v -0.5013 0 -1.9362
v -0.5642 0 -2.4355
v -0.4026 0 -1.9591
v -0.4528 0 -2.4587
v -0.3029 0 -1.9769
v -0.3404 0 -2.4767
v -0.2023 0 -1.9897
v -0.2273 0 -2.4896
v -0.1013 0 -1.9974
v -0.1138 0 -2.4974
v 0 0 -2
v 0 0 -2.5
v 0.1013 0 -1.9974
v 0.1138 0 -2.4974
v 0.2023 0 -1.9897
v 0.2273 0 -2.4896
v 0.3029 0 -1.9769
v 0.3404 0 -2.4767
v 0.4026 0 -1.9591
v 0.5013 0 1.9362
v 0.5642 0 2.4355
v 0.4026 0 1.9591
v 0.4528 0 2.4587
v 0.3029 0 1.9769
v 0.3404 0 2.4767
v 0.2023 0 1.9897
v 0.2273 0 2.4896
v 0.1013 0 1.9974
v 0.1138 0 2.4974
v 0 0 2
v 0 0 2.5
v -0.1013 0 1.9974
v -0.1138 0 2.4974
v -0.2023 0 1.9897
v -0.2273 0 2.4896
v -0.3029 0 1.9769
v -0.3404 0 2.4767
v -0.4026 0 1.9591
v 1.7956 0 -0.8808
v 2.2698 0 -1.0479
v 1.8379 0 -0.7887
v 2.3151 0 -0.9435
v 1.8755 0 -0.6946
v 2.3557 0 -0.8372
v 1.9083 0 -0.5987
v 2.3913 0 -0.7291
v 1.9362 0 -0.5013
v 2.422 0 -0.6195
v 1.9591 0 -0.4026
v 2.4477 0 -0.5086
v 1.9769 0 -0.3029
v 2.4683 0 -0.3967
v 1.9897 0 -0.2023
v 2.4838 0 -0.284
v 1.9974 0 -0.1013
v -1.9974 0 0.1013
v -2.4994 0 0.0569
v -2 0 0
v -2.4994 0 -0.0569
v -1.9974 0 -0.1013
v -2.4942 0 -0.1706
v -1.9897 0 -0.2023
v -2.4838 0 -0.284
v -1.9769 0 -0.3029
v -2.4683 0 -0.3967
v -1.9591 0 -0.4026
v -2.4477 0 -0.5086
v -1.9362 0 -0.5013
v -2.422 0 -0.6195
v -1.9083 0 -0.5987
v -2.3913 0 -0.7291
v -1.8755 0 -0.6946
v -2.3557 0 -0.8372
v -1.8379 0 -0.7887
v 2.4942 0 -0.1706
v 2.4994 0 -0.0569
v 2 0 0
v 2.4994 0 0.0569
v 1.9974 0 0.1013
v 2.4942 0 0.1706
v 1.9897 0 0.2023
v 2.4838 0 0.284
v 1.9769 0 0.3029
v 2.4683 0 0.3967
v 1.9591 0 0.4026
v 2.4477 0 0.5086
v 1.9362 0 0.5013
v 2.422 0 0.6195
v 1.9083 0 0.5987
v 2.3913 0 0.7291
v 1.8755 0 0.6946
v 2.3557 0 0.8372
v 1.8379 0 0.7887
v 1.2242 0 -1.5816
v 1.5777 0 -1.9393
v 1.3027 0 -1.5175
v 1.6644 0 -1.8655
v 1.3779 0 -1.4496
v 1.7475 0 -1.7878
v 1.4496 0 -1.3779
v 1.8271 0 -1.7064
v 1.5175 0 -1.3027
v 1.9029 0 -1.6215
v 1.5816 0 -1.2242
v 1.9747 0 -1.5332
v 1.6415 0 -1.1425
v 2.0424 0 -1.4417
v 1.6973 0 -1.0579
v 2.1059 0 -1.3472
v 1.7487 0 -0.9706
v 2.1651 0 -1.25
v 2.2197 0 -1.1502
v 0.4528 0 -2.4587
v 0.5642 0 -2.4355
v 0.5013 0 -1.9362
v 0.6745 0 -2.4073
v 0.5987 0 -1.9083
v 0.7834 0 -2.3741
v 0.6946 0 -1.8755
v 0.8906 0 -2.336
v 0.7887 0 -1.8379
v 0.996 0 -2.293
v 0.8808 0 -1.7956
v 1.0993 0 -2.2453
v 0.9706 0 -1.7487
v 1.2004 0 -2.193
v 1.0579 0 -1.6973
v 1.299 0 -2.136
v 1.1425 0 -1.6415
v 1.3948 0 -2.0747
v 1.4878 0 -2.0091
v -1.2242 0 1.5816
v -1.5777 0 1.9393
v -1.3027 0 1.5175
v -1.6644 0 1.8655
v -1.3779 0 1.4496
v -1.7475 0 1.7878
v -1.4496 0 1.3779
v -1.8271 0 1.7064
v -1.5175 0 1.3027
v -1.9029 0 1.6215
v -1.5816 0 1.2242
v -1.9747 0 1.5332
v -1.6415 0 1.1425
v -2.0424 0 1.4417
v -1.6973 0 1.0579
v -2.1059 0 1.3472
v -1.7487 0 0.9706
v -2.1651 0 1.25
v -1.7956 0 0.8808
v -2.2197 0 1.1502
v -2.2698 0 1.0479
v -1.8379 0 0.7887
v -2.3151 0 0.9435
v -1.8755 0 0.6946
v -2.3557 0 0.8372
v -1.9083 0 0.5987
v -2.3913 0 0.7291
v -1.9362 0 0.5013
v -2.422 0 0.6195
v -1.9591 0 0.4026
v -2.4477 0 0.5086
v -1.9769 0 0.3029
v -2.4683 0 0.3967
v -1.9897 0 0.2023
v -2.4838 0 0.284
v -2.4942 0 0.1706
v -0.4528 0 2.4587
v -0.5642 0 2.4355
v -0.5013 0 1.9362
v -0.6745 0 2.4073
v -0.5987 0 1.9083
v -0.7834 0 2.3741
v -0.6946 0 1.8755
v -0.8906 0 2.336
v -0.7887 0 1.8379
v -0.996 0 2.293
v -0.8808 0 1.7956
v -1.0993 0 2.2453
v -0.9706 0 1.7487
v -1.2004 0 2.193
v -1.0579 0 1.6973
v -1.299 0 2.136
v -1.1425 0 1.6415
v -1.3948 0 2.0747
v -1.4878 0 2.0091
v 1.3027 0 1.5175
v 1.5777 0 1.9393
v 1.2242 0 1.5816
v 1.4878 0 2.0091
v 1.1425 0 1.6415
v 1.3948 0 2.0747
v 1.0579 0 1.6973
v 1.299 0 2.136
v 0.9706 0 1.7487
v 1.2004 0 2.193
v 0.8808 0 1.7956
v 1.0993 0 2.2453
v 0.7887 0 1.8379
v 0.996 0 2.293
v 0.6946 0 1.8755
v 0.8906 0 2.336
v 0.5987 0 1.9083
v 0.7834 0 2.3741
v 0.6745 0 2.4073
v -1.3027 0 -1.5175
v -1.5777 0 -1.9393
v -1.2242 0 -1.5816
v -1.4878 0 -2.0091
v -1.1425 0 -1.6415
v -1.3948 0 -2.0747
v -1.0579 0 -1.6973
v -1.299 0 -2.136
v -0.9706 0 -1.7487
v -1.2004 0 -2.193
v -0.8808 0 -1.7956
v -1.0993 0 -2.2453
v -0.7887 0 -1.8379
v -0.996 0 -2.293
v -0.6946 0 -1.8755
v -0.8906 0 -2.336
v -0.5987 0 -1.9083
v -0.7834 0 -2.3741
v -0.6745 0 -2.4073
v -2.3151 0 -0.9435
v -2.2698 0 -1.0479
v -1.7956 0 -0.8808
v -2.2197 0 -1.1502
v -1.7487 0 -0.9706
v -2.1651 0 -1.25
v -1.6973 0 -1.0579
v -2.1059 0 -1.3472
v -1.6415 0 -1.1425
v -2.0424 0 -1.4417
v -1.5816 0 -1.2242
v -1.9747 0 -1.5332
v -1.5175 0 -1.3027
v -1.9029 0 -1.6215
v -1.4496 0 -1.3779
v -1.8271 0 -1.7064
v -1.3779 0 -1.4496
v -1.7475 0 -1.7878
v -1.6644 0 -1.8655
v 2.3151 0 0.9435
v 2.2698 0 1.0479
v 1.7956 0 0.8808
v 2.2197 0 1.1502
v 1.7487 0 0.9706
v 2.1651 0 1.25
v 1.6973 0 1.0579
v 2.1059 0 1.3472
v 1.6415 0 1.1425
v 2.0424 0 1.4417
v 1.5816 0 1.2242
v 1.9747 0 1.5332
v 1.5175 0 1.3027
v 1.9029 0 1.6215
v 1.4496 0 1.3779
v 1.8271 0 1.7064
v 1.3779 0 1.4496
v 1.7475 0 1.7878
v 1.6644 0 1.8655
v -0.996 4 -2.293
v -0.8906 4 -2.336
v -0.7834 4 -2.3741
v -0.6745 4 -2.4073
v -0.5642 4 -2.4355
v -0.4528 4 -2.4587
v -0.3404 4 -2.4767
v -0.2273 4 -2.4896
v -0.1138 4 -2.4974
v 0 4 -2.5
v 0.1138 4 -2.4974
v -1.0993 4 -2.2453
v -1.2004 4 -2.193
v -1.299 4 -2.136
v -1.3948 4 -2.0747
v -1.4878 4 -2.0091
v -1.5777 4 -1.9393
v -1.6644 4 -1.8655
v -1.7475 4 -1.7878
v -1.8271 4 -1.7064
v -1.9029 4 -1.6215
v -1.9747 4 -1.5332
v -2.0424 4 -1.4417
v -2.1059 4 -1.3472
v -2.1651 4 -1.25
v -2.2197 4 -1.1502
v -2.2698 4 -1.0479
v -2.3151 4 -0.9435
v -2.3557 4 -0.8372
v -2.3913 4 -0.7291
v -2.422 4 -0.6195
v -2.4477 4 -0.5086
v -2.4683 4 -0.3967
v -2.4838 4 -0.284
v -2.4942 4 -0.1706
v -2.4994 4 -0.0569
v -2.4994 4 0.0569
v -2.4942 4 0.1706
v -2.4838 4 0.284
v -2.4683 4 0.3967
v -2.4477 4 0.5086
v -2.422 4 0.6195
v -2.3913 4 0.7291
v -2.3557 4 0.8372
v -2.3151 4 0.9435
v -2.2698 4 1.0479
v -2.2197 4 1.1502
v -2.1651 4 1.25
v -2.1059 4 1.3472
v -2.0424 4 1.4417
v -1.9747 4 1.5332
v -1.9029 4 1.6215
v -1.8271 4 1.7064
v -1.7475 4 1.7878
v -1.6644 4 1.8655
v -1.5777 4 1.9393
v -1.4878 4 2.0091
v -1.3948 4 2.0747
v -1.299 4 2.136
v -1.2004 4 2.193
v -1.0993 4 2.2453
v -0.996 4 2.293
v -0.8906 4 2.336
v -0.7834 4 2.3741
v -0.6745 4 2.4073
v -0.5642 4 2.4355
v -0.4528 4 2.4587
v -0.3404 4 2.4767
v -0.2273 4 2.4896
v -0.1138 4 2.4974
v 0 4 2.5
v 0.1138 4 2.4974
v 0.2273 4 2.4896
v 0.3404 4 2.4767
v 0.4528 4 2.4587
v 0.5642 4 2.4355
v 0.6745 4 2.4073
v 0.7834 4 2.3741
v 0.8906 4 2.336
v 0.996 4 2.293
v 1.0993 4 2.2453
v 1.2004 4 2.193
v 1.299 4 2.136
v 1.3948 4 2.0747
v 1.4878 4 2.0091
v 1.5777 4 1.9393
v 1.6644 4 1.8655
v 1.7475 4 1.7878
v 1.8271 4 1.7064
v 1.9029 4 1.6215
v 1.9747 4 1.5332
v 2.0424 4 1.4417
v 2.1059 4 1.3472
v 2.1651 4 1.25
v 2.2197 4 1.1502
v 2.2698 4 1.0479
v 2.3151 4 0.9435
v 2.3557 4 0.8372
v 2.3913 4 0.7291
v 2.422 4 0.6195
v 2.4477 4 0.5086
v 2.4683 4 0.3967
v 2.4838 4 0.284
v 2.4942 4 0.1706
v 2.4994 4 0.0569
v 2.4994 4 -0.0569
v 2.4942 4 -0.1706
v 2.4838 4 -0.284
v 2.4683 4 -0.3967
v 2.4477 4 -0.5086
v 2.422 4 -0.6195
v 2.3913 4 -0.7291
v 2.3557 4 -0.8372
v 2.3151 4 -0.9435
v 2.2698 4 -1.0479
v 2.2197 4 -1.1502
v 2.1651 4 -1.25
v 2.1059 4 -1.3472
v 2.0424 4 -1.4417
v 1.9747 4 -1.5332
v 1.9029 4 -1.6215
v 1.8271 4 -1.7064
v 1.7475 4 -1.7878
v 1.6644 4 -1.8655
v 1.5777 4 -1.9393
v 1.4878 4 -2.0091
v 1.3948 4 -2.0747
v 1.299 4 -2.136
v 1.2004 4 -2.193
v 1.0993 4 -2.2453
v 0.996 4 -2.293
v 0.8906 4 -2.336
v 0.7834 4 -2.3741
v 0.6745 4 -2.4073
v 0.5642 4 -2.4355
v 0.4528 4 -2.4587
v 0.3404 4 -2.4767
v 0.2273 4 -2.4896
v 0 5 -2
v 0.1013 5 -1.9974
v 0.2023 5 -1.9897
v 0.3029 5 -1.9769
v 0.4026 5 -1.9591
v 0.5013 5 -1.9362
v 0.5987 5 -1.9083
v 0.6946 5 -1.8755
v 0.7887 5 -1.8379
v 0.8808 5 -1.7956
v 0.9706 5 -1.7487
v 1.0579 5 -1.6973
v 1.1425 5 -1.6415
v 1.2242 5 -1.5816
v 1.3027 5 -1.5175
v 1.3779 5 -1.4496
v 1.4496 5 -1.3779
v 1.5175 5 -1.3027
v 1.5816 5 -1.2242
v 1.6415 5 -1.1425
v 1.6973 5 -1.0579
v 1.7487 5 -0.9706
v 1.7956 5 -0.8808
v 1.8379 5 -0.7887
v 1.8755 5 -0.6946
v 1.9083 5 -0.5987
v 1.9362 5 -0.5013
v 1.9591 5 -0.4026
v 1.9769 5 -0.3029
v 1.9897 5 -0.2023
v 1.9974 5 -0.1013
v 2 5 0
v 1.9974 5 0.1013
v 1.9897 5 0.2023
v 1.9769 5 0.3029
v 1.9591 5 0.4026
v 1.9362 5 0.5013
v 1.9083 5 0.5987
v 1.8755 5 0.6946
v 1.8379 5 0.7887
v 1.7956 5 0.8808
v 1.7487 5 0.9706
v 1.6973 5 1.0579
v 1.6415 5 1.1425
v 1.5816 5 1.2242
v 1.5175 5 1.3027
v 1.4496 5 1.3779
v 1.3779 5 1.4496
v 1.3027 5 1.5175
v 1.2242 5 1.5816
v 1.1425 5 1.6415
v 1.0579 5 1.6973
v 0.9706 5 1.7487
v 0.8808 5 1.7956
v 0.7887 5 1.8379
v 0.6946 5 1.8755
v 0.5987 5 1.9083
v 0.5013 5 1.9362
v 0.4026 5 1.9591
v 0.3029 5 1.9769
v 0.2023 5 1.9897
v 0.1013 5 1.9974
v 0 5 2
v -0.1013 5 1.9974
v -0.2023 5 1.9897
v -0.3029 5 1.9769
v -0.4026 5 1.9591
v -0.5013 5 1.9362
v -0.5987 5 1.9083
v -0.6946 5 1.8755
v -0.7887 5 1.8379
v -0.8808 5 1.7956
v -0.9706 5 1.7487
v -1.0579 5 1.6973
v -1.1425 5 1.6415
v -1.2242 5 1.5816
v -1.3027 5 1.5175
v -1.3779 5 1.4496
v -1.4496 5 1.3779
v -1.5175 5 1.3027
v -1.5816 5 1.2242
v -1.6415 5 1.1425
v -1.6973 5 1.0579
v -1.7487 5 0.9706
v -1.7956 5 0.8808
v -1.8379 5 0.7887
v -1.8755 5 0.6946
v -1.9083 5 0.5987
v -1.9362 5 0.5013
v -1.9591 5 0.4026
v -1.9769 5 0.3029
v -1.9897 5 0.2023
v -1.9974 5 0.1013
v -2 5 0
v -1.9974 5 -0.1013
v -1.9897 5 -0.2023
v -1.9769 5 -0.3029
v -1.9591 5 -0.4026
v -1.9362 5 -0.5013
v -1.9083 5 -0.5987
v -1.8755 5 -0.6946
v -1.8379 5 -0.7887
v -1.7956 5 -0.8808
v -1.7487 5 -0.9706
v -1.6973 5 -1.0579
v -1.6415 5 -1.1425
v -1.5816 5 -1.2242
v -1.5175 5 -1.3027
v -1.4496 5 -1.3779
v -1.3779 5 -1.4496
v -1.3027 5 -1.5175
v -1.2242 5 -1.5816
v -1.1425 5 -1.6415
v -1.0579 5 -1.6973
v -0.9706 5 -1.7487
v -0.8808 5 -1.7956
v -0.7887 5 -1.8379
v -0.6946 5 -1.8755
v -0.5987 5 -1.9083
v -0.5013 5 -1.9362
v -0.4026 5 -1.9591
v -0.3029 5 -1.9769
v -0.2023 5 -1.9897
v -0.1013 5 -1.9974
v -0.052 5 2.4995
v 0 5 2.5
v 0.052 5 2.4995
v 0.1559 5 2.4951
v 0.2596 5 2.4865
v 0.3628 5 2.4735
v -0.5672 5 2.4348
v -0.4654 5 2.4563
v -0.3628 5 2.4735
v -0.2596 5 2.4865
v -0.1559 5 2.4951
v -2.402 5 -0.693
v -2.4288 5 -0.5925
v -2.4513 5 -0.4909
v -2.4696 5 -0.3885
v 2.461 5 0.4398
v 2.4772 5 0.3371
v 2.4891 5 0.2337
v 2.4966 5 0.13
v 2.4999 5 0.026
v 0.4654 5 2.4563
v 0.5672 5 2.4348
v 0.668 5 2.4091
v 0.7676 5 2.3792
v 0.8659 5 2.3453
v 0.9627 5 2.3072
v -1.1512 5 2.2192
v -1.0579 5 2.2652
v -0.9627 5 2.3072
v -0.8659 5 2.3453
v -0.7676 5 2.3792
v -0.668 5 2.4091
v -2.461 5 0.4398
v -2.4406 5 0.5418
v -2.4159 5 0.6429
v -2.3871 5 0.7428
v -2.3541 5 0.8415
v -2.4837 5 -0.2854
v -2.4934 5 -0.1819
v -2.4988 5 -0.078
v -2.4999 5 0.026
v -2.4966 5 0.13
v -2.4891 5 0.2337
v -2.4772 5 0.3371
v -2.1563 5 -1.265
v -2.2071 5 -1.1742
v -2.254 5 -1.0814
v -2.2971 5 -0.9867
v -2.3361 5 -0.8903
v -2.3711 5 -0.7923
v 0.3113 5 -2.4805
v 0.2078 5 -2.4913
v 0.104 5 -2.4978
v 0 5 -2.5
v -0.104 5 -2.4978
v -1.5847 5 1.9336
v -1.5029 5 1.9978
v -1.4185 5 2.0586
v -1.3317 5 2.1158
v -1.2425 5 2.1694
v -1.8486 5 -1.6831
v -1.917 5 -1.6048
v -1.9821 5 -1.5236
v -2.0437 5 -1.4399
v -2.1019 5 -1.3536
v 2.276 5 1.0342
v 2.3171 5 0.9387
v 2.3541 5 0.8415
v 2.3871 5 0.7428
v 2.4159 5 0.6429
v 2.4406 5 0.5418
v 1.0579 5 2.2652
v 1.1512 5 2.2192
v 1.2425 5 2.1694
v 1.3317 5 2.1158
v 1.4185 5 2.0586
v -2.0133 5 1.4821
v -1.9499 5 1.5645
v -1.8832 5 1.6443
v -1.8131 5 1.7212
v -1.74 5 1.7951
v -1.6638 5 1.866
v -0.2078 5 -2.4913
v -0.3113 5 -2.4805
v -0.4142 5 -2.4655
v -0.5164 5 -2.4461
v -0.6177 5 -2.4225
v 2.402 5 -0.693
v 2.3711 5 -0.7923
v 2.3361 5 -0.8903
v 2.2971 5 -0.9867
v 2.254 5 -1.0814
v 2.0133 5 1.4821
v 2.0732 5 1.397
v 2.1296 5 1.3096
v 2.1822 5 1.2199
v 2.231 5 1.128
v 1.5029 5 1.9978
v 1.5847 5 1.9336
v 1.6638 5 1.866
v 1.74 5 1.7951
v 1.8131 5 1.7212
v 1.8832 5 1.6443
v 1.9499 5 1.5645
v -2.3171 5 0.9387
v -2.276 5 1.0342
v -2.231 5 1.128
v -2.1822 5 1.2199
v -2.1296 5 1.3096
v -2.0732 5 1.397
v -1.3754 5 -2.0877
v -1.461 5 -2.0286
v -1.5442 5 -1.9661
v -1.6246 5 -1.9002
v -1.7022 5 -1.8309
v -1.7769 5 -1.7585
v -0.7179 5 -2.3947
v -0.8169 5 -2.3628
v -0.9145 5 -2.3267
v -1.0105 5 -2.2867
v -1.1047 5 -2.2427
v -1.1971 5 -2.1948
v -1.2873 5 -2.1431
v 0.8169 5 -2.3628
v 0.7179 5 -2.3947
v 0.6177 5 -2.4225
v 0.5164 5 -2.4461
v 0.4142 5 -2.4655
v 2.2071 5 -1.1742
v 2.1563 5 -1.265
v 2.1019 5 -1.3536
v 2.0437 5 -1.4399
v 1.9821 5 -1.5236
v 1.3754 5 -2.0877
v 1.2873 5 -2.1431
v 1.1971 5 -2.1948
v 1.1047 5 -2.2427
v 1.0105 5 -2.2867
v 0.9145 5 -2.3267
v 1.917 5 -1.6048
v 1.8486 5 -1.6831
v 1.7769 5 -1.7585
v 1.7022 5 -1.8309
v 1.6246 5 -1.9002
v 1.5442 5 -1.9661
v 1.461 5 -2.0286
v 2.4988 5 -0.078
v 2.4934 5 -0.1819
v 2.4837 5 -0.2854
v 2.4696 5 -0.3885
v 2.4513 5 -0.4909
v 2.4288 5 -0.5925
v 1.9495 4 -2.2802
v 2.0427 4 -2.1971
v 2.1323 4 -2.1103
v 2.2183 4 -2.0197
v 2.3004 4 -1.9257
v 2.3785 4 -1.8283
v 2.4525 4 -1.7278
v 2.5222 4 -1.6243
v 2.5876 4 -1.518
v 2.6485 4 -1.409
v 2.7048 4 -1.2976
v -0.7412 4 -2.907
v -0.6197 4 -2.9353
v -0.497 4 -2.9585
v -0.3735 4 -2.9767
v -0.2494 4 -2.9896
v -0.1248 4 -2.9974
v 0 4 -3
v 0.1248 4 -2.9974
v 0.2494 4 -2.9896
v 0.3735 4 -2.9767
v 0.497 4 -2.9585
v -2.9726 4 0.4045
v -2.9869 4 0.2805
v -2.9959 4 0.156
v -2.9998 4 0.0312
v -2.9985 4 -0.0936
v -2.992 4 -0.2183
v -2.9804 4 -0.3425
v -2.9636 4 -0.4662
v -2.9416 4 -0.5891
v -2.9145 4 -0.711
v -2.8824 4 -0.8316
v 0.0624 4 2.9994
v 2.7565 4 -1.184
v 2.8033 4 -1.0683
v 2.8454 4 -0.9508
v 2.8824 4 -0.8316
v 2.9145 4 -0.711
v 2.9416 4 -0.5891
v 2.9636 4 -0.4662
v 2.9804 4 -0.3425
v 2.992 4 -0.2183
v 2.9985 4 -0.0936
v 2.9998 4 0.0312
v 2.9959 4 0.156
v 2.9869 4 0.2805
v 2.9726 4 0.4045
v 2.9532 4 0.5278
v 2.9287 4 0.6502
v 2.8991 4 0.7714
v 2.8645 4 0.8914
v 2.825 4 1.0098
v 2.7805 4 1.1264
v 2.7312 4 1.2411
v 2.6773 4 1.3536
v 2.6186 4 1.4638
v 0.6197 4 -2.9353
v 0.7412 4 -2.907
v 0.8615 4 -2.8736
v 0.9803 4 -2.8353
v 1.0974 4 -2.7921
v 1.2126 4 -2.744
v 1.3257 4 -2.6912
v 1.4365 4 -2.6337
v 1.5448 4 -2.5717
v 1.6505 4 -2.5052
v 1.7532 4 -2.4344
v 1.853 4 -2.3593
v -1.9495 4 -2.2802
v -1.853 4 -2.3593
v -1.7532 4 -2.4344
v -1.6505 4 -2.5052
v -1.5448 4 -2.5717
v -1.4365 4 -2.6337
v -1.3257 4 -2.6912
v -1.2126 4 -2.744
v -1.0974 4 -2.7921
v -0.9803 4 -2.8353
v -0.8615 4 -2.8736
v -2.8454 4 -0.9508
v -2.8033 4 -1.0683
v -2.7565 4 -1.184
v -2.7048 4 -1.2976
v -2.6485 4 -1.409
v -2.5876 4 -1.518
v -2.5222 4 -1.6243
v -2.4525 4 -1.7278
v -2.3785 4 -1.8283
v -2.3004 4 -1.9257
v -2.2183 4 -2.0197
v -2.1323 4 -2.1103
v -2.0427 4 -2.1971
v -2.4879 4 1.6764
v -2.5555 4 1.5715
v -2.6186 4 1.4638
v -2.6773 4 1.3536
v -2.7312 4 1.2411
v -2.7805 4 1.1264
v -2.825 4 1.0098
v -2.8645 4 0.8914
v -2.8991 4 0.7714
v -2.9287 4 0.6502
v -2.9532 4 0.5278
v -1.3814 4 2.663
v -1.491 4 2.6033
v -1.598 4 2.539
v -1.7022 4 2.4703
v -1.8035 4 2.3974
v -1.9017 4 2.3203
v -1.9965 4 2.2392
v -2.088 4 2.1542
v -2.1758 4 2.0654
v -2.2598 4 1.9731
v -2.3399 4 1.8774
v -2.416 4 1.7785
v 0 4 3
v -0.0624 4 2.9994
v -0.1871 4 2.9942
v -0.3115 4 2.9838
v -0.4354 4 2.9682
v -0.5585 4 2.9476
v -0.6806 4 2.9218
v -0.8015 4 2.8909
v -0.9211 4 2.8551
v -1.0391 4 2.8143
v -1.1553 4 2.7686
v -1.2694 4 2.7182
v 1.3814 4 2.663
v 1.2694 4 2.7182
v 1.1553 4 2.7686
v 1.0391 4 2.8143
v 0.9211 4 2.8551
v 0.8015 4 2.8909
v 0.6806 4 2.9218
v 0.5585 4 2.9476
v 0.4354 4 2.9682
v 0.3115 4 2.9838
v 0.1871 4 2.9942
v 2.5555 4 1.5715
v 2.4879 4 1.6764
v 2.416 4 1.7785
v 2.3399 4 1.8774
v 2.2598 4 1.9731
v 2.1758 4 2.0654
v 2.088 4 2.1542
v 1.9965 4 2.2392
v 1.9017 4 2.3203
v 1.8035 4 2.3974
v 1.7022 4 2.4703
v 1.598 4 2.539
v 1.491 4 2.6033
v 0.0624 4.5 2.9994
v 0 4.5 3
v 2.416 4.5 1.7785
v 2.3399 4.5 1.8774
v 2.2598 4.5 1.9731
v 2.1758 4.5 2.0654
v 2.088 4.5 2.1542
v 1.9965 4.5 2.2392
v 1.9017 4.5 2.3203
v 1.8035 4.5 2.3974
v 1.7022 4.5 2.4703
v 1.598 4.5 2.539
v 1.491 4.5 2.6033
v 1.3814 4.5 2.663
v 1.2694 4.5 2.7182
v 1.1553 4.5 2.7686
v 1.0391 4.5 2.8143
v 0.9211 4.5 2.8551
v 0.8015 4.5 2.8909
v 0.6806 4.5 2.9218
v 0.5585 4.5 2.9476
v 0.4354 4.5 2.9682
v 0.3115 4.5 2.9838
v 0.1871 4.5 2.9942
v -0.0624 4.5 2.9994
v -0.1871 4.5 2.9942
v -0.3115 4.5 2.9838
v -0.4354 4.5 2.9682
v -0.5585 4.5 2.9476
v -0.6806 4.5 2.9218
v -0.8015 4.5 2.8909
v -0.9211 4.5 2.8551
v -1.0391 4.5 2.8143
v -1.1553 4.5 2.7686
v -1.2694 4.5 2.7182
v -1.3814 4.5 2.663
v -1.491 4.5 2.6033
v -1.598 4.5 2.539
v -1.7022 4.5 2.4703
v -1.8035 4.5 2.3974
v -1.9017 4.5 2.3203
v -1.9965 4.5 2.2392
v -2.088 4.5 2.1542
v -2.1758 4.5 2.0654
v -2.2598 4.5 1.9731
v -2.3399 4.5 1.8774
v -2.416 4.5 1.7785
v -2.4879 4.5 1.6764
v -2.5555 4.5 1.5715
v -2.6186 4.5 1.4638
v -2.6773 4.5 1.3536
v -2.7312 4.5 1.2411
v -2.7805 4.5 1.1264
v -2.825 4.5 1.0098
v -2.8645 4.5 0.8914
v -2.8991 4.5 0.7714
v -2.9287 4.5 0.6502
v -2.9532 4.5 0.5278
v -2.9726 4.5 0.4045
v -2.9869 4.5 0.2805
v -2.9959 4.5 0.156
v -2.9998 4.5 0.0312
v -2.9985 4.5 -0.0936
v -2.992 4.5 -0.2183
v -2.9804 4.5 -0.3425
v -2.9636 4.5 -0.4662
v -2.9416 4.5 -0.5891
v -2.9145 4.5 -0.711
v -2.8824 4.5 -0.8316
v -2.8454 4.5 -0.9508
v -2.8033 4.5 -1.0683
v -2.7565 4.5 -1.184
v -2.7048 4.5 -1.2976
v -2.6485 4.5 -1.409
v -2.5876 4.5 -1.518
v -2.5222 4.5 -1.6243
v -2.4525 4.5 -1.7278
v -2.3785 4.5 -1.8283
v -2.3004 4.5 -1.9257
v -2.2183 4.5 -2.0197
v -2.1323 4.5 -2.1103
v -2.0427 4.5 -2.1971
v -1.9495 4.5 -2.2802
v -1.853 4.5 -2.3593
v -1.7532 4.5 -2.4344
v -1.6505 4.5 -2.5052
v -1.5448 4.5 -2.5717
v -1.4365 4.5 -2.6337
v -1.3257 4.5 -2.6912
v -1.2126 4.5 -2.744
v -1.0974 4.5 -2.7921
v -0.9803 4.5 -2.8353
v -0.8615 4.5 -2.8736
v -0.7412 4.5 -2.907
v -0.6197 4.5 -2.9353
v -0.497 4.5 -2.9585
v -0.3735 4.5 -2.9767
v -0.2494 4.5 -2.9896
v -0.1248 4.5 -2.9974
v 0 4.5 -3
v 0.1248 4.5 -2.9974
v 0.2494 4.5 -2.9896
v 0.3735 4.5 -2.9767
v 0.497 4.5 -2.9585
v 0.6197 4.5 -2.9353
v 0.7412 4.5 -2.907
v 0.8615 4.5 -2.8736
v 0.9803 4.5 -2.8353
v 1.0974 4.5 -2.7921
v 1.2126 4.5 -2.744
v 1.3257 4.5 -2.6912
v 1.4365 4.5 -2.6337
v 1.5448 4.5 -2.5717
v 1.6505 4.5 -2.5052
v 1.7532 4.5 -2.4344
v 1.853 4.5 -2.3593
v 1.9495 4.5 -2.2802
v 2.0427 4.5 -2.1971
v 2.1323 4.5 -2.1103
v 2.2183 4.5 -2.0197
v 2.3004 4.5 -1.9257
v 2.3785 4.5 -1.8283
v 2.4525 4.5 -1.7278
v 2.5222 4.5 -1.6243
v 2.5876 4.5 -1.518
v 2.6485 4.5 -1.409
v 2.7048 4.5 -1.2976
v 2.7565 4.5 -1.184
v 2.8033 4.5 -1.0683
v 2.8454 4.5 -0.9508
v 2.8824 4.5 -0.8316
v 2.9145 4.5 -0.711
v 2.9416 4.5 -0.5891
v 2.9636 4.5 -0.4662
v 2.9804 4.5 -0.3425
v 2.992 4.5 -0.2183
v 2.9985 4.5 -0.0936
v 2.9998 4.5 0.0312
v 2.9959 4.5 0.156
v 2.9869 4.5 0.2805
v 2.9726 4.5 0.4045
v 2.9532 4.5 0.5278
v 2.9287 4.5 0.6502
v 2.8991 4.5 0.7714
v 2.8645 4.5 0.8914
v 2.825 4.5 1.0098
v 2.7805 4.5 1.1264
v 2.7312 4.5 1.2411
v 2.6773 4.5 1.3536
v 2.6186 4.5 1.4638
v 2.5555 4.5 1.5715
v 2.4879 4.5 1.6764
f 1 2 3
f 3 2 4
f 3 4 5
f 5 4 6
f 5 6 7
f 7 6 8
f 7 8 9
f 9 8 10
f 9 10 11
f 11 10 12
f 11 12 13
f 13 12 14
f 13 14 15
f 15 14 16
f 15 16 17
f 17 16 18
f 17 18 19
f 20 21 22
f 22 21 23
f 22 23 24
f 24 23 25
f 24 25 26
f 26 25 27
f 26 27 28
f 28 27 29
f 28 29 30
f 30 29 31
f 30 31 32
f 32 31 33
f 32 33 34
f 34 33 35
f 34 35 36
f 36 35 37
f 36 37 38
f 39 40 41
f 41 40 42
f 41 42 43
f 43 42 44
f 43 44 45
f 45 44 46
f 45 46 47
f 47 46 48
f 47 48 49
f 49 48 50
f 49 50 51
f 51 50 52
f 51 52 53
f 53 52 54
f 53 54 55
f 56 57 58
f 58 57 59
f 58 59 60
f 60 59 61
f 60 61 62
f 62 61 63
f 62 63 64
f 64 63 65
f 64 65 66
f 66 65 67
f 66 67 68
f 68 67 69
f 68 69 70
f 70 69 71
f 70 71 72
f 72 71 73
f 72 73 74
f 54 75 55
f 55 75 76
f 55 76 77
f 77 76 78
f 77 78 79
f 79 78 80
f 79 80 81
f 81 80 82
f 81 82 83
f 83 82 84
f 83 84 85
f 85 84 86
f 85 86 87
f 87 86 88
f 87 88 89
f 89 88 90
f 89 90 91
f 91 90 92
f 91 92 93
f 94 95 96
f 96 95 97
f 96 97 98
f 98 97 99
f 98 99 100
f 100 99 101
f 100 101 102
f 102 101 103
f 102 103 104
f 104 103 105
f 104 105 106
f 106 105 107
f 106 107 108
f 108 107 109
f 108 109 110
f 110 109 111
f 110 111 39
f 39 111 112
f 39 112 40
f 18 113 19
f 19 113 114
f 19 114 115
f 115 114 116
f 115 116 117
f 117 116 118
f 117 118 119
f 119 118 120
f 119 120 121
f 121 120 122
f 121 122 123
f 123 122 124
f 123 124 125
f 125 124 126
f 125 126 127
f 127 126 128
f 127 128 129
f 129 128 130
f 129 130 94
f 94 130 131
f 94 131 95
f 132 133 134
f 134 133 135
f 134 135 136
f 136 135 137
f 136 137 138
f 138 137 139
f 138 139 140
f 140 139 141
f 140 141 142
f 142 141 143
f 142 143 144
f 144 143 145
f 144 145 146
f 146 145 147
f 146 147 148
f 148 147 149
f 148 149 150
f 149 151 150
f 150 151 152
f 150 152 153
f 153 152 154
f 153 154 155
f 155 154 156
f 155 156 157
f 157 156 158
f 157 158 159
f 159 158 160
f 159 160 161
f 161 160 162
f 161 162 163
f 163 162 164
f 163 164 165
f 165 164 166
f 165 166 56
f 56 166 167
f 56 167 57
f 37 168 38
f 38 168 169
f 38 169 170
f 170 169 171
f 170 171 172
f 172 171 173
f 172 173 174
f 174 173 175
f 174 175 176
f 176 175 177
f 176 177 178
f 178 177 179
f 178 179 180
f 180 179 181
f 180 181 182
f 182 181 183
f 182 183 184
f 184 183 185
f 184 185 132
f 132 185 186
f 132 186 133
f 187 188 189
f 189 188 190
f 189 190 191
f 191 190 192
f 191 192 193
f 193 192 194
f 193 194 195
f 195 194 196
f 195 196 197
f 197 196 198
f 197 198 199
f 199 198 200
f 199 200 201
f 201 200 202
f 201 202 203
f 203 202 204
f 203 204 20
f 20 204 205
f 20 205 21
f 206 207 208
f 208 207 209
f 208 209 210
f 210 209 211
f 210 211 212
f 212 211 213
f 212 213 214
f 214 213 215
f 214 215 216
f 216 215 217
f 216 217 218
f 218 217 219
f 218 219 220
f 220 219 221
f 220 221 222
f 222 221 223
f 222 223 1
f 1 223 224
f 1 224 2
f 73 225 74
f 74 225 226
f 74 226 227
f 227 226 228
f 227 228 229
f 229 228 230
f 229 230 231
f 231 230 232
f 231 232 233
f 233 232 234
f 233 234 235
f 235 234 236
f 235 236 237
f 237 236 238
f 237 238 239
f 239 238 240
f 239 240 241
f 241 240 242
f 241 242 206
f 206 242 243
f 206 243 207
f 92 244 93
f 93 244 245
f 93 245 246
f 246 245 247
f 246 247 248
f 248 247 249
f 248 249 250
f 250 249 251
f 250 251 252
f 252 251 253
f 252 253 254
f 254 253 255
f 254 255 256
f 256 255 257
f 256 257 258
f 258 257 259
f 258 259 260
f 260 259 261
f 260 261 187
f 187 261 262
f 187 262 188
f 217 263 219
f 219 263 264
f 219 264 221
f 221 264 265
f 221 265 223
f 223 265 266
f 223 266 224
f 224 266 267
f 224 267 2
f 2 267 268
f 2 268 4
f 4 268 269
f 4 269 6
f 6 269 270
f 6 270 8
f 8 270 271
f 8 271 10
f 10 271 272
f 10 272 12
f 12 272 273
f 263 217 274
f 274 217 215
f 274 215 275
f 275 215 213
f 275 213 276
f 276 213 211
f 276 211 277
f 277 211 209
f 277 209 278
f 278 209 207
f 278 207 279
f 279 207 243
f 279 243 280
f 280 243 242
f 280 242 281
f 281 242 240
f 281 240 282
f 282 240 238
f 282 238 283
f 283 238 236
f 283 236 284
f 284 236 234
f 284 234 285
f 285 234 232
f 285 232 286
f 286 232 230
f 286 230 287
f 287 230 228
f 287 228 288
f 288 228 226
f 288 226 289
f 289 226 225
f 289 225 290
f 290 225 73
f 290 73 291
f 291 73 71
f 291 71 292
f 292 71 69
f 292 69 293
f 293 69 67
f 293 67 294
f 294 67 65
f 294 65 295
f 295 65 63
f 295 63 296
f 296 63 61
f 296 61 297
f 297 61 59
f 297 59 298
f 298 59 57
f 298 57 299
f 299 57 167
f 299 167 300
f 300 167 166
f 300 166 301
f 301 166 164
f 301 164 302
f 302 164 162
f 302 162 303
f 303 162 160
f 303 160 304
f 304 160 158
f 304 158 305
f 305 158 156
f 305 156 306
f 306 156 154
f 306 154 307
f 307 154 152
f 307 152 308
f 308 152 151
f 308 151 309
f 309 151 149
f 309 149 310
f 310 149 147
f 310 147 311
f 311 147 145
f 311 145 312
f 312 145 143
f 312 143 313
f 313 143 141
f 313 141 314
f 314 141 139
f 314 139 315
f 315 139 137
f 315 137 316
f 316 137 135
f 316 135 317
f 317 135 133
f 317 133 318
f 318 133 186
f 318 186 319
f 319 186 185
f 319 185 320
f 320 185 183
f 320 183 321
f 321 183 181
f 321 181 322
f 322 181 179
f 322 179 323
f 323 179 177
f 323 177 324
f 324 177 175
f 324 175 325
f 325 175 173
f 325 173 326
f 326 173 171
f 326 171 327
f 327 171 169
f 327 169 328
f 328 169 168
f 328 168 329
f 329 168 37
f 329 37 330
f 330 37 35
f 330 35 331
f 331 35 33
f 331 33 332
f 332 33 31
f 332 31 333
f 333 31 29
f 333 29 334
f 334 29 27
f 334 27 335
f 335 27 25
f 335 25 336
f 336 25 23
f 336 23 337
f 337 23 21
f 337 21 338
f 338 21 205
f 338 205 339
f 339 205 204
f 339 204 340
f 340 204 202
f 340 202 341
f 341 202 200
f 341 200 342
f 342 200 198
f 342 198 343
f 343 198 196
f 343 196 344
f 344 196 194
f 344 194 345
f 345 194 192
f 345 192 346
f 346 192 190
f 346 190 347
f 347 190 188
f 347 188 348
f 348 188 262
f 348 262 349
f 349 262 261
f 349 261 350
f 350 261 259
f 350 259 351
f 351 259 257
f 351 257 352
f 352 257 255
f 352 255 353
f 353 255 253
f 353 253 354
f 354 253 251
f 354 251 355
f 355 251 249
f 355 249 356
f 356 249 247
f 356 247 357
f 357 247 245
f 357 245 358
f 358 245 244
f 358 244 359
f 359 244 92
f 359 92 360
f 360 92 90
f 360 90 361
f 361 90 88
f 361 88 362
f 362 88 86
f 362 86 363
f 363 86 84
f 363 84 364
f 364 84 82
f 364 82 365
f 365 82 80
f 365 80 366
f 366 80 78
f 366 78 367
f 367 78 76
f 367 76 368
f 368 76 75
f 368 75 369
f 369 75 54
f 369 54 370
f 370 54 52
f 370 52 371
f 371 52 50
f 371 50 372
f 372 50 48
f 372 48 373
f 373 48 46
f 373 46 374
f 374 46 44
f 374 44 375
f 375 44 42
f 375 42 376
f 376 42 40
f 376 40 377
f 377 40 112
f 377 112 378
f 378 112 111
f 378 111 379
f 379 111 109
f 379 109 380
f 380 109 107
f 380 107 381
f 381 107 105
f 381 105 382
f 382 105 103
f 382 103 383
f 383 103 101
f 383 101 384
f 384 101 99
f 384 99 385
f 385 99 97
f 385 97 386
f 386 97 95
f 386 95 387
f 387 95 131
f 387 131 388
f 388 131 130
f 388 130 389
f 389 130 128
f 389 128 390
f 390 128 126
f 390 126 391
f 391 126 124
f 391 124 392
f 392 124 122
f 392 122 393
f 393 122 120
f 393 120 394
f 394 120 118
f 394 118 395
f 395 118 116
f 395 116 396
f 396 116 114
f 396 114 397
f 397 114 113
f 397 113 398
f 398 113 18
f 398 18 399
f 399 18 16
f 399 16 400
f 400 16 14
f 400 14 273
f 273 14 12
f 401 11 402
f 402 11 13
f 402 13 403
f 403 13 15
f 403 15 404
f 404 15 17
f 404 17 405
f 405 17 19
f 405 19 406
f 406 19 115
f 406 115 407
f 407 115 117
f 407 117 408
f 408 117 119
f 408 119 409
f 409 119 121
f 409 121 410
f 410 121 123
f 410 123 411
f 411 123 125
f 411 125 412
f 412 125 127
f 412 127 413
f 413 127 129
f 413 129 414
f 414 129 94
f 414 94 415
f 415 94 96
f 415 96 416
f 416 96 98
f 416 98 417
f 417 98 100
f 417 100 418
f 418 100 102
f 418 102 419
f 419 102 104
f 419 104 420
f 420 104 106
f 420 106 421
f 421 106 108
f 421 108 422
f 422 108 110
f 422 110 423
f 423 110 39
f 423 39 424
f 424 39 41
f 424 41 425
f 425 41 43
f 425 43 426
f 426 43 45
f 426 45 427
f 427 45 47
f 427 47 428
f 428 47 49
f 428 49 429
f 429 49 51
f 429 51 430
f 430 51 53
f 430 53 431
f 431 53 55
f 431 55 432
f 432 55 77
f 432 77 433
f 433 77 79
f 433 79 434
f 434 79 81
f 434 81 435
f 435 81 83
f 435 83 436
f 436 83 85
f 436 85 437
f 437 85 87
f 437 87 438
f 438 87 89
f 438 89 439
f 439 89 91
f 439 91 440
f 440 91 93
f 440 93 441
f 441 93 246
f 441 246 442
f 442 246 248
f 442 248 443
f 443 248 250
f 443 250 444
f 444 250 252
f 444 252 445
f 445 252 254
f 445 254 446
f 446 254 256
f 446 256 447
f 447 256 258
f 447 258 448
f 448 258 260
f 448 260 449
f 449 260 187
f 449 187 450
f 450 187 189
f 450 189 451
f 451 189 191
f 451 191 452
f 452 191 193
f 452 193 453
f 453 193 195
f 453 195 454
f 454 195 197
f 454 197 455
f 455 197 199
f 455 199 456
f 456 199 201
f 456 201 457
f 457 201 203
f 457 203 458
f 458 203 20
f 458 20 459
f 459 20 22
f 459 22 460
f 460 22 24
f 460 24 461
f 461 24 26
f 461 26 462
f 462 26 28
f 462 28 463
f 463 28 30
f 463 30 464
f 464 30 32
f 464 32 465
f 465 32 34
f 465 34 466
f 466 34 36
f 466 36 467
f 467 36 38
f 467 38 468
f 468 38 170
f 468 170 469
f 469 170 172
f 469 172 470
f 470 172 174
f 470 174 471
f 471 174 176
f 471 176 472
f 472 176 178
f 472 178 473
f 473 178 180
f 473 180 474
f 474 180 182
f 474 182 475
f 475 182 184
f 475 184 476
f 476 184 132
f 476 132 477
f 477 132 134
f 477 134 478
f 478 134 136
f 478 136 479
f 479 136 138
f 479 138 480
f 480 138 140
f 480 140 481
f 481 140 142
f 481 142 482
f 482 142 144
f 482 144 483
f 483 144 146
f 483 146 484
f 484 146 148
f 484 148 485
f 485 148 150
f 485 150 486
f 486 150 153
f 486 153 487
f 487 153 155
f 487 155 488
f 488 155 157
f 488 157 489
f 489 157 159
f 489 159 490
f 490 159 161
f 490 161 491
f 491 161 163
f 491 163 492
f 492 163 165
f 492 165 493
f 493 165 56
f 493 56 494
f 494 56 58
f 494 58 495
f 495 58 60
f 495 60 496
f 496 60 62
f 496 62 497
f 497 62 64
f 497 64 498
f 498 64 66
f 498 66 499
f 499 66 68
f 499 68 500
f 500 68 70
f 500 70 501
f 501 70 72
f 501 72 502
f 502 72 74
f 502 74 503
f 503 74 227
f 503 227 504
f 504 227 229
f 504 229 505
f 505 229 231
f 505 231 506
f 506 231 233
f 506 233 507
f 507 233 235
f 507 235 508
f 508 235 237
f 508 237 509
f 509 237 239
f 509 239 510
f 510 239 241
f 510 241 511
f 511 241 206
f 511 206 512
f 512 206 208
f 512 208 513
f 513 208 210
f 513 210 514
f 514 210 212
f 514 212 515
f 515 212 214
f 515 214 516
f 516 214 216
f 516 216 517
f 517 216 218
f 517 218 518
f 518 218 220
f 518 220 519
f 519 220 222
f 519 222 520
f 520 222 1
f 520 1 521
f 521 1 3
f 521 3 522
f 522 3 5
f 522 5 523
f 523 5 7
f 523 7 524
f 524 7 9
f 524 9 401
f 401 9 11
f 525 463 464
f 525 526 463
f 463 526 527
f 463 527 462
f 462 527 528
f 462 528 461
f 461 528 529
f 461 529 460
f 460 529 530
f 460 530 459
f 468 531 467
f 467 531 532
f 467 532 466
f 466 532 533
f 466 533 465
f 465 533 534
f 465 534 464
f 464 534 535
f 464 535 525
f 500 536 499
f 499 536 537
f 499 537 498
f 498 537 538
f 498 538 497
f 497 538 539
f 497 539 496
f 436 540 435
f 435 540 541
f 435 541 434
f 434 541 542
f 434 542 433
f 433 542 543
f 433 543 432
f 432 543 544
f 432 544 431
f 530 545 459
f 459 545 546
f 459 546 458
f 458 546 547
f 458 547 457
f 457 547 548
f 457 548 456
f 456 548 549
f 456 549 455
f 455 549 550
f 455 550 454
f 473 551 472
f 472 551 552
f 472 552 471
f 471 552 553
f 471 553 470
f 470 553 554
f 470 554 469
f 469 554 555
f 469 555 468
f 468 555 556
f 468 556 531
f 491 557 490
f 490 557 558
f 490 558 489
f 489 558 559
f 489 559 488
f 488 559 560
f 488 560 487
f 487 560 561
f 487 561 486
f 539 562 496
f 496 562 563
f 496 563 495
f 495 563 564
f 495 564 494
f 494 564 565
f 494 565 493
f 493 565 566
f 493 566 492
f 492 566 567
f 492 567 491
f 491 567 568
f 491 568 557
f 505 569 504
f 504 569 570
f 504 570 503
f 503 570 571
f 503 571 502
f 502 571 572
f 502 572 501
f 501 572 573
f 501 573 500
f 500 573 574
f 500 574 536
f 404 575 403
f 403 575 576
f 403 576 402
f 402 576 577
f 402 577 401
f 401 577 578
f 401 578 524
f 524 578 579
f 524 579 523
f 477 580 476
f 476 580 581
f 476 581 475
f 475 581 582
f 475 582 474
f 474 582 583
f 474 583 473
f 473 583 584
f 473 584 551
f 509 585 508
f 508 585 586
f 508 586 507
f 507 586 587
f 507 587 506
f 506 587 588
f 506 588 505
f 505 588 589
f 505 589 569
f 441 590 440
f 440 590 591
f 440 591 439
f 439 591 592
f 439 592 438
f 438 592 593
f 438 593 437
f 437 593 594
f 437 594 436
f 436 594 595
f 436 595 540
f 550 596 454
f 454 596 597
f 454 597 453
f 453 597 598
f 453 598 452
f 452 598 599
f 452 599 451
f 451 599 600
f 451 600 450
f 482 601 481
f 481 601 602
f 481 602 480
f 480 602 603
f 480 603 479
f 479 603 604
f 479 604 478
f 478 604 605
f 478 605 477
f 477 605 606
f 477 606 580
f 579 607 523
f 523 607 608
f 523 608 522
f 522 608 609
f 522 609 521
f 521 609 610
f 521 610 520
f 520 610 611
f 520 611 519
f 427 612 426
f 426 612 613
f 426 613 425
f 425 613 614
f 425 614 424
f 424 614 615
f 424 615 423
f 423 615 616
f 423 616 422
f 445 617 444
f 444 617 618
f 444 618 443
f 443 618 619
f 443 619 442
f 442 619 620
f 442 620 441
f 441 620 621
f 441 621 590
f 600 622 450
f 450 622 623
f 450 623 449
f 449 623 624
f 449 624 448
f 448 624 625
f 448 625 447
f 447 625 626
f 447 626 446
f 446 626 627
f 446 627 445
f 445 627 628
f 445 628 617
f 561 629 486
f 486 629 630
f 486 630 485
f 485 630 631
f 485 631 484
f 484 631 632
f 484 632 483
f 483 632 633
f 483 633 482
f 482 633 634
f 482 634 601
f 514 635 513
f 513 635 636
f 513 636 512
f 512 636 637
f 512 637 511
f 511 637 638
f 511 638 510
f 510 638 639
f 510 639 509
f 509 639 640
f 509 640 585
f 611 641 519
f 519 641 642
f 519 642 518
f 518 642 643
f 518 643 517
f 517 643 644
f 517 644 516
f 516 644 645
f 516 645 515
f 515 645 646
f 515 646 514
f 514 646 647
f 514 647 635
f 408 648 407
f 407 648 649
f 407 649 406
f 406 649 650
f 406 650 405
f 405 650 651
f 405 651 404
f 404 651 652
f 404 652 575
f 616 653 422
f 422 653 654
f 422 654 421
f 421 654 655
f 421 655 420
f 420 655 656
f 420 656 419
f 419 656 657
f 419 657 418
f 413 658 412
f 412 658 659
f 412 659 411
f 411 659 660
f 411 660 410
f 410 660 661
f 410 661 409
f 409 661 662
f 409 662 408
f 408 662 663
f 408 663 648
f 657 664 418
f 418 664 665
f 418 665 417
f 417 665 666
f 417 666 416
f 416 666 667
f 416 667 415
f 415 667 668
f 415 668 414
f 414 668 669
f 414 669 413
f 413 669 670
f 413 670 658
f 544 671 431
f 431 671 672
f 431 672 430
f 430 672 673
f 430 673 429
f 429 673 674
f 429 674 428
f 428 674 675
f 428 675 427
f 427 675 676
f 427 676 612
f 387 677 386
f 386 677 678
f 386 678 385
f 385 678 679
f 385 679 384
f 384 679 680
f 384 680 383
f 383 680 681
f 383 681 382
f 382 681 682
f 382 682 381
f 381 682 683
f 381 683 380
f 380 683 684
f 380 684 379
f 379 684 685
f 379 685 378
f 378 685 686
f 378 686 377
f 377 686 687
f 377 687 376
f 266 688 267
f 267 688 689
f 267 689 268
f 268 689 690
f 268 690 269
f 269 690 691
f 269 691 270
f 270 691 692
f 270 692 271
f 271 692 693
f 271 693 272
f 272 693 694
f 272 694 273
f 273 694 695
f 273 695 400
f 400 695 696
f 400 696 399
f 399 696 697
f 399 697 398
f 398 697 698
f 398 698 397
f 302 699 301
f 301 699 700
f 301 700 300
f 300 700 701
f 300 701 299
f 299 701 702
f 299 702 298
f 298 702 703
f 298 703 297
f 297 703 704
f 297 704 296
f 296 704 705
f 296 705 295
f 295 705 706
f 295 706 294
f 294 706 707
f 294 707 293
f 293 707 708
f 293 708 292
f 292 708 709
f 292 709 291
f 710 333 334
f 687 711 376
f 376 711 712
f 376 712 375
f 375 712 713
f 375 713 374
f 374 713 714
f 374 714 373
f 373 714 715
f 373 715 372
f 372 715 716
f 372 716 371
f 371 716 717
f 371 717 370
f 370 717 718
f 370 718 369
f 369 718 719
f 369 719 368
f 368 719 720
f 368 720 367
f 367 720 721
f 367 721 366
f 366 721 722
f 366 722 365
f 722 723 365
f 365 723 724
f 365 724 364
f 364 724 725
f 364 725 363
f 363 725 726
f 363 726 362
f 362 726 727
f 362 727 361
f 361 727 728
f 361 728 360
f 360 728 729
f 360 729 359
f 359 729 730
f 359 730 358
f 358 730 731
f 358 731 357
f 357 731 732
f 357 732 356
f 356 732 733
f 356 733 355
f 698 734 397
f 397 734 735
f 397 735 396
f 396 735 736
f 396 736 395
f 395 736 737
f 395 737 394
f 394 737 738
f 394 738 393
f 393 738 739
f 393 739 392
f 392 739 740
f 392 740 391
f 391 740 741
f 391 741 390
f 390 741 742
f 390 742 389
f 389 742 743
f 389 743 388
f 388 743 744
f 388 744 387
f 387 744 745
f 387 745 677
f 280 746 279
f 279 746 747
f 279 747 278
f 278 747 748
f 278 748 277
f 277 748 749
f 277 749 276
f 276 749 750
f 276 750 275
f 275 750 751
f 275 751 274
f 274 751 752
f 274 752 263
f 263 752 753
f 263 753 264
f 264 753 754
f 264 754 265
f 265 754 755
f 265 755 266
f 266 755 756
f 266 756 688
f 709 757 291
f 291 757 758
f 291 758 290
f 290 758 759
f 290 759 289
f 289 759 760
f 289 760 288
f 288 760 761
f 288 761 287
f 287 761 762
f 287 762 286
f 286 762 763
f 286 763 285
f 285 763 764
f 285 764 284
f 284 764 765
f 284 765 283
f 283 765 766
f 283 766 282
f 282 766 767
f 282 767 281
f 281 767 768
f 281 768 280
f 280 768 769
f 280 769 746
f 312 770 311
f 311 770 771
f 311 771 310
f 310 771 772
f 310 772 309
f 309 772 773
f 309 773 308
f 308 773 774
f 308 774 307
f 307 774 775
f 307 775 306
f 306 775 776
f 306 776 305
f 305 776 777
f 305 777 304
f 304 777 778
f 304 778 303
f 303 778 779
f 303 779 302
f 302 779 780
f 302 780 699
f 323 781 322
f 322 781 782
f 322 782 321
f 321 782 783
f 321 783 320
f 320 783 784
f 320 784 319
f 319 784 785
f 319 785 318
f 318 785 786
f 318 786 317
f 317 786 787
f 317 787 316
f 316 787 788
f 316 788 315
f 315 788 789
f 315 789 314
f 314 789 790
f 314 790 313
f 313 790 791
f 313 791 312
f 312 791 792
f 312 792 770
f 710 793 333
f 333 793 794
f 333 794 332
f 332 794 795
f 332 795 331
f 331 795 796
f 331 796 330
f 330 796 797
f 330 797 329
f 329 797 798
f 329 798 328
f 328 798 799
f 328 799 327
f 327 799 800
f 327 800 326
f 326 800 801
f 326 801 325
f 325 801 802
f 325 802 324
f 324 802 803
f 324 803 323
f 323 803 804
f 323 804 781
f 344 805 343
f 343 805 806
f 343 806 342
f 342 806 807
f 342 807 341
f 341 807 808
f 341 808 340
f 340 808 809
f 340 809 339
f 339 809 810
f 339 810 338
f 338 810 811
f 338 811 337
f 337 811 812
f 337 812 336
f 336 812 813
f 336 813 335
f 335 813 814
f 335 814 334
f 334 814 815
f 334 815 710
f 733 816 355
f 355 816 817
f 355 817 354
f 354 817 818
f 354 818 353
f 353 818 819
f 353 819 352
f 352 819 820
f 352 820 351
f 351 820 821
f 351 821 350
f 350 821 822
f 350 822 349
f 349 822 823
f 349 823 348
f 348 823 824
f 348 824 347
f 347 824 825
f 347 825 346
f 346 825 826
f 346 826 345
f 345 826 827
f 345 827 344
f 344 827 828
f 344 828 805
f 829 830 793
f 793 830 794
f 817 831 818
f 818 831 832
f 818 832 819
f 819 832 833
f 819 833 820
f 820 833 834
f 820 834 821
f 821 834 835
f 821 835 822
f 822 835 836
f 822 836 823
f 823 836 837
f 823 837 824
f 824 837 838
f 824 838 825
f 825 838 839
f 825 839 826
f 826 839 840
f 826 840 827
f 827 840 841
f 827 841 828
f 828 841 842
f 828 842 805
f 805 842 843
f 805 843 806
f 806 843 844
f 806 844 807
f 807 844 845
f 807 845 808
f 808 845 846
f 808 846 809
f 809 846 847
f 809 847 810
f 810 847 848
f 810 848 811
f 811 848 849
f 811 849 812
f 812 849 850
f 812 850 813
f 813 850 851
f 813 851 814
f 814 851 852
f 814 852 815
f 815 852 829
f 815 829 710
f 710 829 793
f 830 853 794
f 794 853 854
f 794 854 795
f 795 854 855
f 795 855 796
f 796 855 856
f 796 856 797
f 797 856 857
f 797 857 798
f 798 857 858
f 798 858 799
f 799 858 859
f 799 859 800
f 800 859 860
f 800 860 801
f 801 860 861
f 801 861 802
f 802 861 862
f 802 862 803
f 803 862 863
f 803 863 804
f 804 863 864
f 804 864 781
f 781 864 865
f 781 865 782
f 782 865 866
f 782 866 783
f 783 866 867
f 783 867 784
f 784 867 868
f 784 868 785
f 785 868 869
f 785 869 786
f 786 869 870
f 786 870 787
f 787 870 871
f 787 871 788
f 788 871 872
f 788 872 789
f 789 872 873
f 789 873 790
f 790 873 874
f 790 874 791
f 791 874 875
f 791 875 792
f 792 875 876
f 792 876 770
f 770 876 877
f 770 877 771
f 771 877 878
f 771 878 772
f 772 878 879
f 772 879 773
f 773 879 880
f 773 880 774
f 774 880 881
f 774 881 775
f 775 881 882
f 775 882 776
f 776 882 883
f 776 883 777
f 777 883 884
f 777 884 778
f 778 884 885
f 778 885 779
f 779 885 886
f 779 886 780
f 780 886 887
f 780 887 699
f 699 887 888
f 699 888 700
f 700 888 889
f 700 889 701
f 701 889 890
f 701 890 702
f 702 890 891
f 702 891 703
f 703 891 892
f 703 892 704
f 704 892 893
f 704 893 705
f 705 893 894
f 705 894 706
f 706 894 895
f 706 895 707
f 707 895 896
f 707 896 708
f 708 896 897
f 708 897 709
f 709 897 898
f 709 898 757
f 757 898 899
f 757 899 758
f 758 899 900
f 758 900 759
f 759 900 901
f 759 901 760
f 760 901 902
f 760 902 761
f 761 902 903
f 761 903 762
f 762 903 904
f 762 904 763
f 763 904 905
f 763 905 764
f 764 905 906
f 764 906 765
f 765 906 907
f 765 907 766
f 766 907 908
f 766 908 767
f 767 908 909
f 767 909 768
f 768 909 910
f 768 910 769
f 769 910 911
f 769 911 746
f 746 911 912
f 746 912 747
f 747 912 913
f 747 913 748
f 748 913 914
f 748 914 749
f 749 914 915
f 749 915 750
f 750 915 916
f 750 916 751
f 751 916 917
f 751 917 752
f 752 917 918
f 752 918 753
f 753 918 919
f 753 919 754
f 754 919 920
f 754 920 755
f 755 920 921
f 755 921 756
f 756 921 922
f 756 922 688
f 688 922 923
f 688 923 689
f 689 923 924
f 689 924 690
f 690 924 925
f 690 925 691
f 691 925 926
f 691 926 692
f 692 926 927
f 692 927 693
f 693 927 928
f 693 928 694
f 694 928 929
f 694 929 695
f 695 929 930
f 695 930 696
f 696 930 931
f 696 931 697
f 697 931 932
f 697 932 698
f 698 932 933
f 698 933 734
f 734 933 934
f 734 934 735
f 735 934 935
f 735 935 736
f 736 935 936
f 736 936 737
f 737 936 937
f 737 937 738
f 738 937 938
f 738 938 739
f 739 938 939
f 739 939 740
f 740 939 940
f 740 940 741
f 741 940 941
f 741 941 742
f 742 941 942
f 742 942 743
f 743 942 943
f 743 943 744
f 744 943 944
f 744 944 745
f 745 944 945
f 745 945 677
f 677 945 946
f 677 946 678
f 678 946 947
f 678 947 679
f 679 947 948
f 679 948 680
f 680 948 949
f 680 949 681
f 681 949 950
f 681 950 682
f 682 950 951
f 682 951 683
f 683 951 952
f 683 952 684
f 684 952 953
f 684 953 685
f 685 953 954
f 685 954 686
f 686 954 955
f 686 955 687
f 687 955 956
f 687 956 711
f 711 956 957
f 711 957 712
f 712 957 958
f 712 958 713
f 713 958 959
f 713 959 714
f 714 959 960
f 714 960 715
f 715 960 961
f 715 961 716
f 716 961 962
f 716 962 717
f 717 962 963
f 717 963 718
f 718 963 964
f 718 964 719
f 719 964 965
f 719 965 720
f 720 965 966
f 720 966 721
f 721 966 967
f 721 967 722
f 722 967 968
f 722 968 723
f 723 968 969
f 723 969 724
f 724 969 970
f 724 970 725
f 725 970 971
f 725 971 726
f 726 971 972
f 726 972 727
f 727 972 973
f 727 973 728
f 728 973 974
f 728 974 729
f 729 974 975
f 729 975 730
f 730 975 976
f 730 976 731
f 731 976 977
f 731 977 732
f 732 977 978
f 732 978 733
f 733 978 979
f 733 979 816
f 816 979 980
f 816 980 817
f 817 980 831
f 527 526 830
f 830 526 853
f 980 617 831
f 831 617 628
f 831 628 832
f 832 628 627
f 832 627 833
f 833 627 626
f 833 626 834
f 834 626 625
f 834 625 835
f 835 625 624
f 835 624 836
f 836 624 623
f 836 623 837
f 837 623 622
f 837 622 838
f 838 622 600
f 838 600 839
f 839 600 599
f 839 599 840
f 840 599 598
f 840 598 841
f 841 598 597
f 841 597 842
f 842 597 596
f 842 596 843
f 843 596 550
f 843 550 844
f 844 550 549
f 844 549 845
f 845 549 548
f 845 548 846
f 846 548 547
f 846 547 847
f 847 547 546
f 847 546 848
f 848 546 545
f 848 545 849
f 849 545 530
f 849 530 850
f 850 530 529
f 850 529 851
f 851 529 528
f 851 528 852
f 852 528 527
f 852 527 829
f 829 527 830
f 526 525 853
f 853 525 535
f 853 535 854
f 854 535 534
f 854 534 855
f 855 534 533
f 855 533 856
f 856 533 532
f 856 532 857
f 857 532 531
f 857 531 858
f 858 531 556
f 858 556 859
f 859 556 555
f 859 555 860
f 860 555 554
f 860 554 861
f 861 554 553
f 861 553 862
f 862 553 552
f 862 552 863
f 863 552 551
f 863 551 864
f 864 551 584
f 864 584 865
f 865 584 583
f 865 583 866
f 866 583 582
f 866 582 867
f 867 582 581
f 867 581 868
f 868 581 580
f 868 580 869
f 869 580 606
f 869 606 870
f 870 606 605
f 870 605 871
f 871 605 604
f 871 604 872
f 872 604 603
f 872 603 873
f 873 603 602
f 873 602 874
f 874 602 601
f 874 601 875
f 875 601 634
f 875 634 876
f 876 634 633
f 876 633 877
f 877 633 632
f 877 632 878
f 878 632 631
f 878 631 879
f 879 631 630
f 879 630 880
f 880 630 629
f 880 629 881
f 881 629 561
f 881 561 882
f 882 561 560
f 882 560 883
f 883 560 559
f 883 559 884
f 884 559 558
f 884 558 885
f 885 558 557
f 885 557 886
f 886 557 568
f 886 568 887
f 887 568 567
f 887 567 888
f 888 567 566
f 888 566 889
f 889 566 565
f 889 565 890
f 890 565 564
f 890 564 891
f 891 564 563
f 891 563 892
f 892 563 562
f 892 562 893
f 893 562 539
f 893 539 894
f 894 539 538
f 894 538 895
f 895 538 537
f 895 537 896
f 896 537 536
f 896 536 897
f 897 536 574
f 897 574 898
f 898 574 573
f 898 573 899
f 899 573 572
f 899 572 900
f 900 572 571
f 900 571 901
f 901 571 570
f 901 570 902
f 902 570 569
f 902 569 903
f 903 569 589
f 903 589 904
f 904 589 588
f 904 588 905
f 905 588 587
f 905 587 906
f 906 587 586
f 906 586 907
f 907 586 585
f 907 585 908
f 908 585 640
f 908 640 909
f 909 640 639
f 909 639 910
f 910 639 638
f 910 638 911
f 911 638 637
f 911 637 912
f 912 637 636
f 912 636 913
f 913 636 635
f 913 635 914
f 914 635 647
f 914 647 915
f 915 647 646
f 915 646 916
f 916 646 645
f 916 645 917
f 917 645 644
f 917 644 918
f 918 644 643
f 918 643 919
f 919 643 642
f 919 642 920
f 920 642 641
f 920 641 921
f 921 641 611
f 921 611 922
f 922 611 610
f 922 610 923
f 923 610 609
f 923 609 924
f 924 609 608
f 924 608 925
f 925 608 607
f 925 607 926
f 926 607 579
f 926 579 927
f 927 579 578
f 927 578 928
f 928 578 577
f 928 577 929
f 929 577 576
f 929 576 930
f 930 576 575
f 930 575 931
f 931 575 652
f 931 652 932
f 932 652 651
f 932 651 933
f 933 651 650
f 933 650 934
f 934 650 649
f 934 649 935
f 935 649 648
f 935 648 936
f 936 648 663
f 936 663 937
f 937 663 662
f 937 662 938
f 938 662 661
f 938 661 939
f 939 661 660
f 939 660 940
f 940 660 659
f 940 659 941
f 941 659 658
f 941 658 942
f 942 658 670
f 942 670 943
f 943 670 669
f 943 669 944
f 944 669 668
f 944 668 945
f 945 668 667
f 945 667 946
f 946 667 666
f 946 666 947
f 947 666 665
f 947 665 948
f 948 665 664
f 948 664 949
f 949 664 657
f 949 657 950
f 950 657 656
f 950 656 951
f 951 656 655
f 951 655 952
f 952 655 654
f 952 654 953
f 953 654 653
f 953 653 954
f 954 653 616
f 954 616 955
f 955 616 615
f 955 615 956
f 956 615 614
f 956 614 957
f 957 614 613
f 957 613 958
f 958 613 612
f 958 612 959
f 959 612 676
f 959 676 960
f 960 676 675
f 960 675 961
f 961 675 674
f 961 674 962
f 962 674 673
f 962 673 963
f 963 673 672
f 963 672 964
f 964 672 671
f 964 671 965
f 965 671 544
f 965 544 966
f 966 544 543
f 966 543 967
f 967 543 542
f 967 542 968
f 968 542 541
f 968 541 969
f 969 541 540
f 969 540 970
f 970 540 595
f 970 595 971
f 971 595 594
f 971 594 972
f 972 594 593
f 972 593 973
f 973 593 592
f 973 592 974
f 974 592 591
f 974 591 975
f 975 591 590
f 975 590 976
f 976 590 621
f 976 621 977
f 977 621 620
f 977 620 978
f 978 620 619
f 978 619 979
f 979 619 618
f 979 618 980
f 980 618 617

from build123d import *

# Parameters (mm, degrees)
SKETCH2_R           = 2.5
SKETCH2_R_2         = 2
BOSS_EXTRUDE1_DEPTH = 4
SKETCH3_R           = 3
SKETCH3_R_2         = 2
BOSS_EXTRUDE2_DEPTH = 1
CHAMFER1_SIZE       = 0.5


with BuildPart() as part:
    # Sketch2 → Boss-Extrude1 (new body)
    with BuildSketch(Plane(origin=(0, 0, 0), x_dir=(1, 0, 0), z_dir=(0, 1, 0))):
        Circle(SKETCH2_R)
        Circle(SKETCH2_R_2, mode=Mode.SUBTRACT)
    extrude(amount=BOSS_EXTRUDE1_DEPTH)

    # Sketch3 → Boss-Extrude2 (add)
    with BuildSketch(Plane(origin=(0, 4, 0), x_dir=(1, 0, 0), z_dir=(0, 1, 0))):
        Circle(SKETCH3_R)
        Circle(SKETCH3_R_2, mode=Mode.SUBTRACT)
    extrude(amount=BOSS_EXTRUDE2_DEPTH)

    # Chamfer1
    chamfer1_edges = [part.edges().sort_by_distance(p)[0] for p in [
        (-3, 5, 0),
    ]]
    chamfer(chamfer1_edges, length=CHAMFER1_SIZE)


solid = part.part
